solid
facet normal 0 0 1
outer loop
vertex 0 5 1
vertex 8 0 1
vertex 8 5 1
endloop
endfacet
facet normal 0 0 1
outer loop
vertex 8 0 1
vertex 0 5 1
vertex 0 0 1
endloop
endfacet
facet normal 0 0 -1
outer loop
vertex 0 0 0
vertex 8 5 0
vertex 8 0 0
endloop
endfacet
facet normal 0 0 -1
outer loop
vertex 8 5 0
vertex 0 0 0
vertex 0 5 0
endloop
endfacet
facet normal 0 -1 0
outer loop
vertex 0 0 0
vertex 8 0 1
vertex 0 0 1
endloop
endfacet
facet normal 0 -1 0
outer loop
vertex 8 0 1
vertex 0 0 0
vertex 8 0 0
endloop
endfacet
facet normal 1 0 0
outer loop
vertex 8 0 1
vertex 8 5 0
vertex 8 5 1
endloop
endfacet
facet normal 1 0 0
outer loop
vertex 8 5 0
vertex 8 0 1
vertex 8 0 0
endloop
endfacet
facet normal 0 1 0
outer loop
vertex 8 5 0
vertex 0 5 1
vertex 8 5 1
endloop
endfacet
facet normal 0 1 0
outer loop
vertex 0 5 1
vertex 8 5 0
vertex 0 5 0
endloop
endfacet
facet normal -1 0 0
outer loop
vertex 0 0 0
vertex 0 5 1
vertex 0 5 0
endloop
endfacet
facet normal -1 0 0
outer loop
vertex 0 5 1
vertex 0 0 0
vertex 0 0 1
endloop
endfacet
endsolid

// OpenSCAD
/* Warning, this is a very basic generator with a lot of approximation 
input data : [TFBGA, 7GW, 8x5x1mm, 60, , A, C04-00646A]
generated by com.zoubworld.electronics.cad.model3d.Basic
Date : Sun Feb 15 10:50:49 CET 2026
*/

//body
color("black")
translate([0,0,0])
cube([8.0,5.0,1.0], center=false);
